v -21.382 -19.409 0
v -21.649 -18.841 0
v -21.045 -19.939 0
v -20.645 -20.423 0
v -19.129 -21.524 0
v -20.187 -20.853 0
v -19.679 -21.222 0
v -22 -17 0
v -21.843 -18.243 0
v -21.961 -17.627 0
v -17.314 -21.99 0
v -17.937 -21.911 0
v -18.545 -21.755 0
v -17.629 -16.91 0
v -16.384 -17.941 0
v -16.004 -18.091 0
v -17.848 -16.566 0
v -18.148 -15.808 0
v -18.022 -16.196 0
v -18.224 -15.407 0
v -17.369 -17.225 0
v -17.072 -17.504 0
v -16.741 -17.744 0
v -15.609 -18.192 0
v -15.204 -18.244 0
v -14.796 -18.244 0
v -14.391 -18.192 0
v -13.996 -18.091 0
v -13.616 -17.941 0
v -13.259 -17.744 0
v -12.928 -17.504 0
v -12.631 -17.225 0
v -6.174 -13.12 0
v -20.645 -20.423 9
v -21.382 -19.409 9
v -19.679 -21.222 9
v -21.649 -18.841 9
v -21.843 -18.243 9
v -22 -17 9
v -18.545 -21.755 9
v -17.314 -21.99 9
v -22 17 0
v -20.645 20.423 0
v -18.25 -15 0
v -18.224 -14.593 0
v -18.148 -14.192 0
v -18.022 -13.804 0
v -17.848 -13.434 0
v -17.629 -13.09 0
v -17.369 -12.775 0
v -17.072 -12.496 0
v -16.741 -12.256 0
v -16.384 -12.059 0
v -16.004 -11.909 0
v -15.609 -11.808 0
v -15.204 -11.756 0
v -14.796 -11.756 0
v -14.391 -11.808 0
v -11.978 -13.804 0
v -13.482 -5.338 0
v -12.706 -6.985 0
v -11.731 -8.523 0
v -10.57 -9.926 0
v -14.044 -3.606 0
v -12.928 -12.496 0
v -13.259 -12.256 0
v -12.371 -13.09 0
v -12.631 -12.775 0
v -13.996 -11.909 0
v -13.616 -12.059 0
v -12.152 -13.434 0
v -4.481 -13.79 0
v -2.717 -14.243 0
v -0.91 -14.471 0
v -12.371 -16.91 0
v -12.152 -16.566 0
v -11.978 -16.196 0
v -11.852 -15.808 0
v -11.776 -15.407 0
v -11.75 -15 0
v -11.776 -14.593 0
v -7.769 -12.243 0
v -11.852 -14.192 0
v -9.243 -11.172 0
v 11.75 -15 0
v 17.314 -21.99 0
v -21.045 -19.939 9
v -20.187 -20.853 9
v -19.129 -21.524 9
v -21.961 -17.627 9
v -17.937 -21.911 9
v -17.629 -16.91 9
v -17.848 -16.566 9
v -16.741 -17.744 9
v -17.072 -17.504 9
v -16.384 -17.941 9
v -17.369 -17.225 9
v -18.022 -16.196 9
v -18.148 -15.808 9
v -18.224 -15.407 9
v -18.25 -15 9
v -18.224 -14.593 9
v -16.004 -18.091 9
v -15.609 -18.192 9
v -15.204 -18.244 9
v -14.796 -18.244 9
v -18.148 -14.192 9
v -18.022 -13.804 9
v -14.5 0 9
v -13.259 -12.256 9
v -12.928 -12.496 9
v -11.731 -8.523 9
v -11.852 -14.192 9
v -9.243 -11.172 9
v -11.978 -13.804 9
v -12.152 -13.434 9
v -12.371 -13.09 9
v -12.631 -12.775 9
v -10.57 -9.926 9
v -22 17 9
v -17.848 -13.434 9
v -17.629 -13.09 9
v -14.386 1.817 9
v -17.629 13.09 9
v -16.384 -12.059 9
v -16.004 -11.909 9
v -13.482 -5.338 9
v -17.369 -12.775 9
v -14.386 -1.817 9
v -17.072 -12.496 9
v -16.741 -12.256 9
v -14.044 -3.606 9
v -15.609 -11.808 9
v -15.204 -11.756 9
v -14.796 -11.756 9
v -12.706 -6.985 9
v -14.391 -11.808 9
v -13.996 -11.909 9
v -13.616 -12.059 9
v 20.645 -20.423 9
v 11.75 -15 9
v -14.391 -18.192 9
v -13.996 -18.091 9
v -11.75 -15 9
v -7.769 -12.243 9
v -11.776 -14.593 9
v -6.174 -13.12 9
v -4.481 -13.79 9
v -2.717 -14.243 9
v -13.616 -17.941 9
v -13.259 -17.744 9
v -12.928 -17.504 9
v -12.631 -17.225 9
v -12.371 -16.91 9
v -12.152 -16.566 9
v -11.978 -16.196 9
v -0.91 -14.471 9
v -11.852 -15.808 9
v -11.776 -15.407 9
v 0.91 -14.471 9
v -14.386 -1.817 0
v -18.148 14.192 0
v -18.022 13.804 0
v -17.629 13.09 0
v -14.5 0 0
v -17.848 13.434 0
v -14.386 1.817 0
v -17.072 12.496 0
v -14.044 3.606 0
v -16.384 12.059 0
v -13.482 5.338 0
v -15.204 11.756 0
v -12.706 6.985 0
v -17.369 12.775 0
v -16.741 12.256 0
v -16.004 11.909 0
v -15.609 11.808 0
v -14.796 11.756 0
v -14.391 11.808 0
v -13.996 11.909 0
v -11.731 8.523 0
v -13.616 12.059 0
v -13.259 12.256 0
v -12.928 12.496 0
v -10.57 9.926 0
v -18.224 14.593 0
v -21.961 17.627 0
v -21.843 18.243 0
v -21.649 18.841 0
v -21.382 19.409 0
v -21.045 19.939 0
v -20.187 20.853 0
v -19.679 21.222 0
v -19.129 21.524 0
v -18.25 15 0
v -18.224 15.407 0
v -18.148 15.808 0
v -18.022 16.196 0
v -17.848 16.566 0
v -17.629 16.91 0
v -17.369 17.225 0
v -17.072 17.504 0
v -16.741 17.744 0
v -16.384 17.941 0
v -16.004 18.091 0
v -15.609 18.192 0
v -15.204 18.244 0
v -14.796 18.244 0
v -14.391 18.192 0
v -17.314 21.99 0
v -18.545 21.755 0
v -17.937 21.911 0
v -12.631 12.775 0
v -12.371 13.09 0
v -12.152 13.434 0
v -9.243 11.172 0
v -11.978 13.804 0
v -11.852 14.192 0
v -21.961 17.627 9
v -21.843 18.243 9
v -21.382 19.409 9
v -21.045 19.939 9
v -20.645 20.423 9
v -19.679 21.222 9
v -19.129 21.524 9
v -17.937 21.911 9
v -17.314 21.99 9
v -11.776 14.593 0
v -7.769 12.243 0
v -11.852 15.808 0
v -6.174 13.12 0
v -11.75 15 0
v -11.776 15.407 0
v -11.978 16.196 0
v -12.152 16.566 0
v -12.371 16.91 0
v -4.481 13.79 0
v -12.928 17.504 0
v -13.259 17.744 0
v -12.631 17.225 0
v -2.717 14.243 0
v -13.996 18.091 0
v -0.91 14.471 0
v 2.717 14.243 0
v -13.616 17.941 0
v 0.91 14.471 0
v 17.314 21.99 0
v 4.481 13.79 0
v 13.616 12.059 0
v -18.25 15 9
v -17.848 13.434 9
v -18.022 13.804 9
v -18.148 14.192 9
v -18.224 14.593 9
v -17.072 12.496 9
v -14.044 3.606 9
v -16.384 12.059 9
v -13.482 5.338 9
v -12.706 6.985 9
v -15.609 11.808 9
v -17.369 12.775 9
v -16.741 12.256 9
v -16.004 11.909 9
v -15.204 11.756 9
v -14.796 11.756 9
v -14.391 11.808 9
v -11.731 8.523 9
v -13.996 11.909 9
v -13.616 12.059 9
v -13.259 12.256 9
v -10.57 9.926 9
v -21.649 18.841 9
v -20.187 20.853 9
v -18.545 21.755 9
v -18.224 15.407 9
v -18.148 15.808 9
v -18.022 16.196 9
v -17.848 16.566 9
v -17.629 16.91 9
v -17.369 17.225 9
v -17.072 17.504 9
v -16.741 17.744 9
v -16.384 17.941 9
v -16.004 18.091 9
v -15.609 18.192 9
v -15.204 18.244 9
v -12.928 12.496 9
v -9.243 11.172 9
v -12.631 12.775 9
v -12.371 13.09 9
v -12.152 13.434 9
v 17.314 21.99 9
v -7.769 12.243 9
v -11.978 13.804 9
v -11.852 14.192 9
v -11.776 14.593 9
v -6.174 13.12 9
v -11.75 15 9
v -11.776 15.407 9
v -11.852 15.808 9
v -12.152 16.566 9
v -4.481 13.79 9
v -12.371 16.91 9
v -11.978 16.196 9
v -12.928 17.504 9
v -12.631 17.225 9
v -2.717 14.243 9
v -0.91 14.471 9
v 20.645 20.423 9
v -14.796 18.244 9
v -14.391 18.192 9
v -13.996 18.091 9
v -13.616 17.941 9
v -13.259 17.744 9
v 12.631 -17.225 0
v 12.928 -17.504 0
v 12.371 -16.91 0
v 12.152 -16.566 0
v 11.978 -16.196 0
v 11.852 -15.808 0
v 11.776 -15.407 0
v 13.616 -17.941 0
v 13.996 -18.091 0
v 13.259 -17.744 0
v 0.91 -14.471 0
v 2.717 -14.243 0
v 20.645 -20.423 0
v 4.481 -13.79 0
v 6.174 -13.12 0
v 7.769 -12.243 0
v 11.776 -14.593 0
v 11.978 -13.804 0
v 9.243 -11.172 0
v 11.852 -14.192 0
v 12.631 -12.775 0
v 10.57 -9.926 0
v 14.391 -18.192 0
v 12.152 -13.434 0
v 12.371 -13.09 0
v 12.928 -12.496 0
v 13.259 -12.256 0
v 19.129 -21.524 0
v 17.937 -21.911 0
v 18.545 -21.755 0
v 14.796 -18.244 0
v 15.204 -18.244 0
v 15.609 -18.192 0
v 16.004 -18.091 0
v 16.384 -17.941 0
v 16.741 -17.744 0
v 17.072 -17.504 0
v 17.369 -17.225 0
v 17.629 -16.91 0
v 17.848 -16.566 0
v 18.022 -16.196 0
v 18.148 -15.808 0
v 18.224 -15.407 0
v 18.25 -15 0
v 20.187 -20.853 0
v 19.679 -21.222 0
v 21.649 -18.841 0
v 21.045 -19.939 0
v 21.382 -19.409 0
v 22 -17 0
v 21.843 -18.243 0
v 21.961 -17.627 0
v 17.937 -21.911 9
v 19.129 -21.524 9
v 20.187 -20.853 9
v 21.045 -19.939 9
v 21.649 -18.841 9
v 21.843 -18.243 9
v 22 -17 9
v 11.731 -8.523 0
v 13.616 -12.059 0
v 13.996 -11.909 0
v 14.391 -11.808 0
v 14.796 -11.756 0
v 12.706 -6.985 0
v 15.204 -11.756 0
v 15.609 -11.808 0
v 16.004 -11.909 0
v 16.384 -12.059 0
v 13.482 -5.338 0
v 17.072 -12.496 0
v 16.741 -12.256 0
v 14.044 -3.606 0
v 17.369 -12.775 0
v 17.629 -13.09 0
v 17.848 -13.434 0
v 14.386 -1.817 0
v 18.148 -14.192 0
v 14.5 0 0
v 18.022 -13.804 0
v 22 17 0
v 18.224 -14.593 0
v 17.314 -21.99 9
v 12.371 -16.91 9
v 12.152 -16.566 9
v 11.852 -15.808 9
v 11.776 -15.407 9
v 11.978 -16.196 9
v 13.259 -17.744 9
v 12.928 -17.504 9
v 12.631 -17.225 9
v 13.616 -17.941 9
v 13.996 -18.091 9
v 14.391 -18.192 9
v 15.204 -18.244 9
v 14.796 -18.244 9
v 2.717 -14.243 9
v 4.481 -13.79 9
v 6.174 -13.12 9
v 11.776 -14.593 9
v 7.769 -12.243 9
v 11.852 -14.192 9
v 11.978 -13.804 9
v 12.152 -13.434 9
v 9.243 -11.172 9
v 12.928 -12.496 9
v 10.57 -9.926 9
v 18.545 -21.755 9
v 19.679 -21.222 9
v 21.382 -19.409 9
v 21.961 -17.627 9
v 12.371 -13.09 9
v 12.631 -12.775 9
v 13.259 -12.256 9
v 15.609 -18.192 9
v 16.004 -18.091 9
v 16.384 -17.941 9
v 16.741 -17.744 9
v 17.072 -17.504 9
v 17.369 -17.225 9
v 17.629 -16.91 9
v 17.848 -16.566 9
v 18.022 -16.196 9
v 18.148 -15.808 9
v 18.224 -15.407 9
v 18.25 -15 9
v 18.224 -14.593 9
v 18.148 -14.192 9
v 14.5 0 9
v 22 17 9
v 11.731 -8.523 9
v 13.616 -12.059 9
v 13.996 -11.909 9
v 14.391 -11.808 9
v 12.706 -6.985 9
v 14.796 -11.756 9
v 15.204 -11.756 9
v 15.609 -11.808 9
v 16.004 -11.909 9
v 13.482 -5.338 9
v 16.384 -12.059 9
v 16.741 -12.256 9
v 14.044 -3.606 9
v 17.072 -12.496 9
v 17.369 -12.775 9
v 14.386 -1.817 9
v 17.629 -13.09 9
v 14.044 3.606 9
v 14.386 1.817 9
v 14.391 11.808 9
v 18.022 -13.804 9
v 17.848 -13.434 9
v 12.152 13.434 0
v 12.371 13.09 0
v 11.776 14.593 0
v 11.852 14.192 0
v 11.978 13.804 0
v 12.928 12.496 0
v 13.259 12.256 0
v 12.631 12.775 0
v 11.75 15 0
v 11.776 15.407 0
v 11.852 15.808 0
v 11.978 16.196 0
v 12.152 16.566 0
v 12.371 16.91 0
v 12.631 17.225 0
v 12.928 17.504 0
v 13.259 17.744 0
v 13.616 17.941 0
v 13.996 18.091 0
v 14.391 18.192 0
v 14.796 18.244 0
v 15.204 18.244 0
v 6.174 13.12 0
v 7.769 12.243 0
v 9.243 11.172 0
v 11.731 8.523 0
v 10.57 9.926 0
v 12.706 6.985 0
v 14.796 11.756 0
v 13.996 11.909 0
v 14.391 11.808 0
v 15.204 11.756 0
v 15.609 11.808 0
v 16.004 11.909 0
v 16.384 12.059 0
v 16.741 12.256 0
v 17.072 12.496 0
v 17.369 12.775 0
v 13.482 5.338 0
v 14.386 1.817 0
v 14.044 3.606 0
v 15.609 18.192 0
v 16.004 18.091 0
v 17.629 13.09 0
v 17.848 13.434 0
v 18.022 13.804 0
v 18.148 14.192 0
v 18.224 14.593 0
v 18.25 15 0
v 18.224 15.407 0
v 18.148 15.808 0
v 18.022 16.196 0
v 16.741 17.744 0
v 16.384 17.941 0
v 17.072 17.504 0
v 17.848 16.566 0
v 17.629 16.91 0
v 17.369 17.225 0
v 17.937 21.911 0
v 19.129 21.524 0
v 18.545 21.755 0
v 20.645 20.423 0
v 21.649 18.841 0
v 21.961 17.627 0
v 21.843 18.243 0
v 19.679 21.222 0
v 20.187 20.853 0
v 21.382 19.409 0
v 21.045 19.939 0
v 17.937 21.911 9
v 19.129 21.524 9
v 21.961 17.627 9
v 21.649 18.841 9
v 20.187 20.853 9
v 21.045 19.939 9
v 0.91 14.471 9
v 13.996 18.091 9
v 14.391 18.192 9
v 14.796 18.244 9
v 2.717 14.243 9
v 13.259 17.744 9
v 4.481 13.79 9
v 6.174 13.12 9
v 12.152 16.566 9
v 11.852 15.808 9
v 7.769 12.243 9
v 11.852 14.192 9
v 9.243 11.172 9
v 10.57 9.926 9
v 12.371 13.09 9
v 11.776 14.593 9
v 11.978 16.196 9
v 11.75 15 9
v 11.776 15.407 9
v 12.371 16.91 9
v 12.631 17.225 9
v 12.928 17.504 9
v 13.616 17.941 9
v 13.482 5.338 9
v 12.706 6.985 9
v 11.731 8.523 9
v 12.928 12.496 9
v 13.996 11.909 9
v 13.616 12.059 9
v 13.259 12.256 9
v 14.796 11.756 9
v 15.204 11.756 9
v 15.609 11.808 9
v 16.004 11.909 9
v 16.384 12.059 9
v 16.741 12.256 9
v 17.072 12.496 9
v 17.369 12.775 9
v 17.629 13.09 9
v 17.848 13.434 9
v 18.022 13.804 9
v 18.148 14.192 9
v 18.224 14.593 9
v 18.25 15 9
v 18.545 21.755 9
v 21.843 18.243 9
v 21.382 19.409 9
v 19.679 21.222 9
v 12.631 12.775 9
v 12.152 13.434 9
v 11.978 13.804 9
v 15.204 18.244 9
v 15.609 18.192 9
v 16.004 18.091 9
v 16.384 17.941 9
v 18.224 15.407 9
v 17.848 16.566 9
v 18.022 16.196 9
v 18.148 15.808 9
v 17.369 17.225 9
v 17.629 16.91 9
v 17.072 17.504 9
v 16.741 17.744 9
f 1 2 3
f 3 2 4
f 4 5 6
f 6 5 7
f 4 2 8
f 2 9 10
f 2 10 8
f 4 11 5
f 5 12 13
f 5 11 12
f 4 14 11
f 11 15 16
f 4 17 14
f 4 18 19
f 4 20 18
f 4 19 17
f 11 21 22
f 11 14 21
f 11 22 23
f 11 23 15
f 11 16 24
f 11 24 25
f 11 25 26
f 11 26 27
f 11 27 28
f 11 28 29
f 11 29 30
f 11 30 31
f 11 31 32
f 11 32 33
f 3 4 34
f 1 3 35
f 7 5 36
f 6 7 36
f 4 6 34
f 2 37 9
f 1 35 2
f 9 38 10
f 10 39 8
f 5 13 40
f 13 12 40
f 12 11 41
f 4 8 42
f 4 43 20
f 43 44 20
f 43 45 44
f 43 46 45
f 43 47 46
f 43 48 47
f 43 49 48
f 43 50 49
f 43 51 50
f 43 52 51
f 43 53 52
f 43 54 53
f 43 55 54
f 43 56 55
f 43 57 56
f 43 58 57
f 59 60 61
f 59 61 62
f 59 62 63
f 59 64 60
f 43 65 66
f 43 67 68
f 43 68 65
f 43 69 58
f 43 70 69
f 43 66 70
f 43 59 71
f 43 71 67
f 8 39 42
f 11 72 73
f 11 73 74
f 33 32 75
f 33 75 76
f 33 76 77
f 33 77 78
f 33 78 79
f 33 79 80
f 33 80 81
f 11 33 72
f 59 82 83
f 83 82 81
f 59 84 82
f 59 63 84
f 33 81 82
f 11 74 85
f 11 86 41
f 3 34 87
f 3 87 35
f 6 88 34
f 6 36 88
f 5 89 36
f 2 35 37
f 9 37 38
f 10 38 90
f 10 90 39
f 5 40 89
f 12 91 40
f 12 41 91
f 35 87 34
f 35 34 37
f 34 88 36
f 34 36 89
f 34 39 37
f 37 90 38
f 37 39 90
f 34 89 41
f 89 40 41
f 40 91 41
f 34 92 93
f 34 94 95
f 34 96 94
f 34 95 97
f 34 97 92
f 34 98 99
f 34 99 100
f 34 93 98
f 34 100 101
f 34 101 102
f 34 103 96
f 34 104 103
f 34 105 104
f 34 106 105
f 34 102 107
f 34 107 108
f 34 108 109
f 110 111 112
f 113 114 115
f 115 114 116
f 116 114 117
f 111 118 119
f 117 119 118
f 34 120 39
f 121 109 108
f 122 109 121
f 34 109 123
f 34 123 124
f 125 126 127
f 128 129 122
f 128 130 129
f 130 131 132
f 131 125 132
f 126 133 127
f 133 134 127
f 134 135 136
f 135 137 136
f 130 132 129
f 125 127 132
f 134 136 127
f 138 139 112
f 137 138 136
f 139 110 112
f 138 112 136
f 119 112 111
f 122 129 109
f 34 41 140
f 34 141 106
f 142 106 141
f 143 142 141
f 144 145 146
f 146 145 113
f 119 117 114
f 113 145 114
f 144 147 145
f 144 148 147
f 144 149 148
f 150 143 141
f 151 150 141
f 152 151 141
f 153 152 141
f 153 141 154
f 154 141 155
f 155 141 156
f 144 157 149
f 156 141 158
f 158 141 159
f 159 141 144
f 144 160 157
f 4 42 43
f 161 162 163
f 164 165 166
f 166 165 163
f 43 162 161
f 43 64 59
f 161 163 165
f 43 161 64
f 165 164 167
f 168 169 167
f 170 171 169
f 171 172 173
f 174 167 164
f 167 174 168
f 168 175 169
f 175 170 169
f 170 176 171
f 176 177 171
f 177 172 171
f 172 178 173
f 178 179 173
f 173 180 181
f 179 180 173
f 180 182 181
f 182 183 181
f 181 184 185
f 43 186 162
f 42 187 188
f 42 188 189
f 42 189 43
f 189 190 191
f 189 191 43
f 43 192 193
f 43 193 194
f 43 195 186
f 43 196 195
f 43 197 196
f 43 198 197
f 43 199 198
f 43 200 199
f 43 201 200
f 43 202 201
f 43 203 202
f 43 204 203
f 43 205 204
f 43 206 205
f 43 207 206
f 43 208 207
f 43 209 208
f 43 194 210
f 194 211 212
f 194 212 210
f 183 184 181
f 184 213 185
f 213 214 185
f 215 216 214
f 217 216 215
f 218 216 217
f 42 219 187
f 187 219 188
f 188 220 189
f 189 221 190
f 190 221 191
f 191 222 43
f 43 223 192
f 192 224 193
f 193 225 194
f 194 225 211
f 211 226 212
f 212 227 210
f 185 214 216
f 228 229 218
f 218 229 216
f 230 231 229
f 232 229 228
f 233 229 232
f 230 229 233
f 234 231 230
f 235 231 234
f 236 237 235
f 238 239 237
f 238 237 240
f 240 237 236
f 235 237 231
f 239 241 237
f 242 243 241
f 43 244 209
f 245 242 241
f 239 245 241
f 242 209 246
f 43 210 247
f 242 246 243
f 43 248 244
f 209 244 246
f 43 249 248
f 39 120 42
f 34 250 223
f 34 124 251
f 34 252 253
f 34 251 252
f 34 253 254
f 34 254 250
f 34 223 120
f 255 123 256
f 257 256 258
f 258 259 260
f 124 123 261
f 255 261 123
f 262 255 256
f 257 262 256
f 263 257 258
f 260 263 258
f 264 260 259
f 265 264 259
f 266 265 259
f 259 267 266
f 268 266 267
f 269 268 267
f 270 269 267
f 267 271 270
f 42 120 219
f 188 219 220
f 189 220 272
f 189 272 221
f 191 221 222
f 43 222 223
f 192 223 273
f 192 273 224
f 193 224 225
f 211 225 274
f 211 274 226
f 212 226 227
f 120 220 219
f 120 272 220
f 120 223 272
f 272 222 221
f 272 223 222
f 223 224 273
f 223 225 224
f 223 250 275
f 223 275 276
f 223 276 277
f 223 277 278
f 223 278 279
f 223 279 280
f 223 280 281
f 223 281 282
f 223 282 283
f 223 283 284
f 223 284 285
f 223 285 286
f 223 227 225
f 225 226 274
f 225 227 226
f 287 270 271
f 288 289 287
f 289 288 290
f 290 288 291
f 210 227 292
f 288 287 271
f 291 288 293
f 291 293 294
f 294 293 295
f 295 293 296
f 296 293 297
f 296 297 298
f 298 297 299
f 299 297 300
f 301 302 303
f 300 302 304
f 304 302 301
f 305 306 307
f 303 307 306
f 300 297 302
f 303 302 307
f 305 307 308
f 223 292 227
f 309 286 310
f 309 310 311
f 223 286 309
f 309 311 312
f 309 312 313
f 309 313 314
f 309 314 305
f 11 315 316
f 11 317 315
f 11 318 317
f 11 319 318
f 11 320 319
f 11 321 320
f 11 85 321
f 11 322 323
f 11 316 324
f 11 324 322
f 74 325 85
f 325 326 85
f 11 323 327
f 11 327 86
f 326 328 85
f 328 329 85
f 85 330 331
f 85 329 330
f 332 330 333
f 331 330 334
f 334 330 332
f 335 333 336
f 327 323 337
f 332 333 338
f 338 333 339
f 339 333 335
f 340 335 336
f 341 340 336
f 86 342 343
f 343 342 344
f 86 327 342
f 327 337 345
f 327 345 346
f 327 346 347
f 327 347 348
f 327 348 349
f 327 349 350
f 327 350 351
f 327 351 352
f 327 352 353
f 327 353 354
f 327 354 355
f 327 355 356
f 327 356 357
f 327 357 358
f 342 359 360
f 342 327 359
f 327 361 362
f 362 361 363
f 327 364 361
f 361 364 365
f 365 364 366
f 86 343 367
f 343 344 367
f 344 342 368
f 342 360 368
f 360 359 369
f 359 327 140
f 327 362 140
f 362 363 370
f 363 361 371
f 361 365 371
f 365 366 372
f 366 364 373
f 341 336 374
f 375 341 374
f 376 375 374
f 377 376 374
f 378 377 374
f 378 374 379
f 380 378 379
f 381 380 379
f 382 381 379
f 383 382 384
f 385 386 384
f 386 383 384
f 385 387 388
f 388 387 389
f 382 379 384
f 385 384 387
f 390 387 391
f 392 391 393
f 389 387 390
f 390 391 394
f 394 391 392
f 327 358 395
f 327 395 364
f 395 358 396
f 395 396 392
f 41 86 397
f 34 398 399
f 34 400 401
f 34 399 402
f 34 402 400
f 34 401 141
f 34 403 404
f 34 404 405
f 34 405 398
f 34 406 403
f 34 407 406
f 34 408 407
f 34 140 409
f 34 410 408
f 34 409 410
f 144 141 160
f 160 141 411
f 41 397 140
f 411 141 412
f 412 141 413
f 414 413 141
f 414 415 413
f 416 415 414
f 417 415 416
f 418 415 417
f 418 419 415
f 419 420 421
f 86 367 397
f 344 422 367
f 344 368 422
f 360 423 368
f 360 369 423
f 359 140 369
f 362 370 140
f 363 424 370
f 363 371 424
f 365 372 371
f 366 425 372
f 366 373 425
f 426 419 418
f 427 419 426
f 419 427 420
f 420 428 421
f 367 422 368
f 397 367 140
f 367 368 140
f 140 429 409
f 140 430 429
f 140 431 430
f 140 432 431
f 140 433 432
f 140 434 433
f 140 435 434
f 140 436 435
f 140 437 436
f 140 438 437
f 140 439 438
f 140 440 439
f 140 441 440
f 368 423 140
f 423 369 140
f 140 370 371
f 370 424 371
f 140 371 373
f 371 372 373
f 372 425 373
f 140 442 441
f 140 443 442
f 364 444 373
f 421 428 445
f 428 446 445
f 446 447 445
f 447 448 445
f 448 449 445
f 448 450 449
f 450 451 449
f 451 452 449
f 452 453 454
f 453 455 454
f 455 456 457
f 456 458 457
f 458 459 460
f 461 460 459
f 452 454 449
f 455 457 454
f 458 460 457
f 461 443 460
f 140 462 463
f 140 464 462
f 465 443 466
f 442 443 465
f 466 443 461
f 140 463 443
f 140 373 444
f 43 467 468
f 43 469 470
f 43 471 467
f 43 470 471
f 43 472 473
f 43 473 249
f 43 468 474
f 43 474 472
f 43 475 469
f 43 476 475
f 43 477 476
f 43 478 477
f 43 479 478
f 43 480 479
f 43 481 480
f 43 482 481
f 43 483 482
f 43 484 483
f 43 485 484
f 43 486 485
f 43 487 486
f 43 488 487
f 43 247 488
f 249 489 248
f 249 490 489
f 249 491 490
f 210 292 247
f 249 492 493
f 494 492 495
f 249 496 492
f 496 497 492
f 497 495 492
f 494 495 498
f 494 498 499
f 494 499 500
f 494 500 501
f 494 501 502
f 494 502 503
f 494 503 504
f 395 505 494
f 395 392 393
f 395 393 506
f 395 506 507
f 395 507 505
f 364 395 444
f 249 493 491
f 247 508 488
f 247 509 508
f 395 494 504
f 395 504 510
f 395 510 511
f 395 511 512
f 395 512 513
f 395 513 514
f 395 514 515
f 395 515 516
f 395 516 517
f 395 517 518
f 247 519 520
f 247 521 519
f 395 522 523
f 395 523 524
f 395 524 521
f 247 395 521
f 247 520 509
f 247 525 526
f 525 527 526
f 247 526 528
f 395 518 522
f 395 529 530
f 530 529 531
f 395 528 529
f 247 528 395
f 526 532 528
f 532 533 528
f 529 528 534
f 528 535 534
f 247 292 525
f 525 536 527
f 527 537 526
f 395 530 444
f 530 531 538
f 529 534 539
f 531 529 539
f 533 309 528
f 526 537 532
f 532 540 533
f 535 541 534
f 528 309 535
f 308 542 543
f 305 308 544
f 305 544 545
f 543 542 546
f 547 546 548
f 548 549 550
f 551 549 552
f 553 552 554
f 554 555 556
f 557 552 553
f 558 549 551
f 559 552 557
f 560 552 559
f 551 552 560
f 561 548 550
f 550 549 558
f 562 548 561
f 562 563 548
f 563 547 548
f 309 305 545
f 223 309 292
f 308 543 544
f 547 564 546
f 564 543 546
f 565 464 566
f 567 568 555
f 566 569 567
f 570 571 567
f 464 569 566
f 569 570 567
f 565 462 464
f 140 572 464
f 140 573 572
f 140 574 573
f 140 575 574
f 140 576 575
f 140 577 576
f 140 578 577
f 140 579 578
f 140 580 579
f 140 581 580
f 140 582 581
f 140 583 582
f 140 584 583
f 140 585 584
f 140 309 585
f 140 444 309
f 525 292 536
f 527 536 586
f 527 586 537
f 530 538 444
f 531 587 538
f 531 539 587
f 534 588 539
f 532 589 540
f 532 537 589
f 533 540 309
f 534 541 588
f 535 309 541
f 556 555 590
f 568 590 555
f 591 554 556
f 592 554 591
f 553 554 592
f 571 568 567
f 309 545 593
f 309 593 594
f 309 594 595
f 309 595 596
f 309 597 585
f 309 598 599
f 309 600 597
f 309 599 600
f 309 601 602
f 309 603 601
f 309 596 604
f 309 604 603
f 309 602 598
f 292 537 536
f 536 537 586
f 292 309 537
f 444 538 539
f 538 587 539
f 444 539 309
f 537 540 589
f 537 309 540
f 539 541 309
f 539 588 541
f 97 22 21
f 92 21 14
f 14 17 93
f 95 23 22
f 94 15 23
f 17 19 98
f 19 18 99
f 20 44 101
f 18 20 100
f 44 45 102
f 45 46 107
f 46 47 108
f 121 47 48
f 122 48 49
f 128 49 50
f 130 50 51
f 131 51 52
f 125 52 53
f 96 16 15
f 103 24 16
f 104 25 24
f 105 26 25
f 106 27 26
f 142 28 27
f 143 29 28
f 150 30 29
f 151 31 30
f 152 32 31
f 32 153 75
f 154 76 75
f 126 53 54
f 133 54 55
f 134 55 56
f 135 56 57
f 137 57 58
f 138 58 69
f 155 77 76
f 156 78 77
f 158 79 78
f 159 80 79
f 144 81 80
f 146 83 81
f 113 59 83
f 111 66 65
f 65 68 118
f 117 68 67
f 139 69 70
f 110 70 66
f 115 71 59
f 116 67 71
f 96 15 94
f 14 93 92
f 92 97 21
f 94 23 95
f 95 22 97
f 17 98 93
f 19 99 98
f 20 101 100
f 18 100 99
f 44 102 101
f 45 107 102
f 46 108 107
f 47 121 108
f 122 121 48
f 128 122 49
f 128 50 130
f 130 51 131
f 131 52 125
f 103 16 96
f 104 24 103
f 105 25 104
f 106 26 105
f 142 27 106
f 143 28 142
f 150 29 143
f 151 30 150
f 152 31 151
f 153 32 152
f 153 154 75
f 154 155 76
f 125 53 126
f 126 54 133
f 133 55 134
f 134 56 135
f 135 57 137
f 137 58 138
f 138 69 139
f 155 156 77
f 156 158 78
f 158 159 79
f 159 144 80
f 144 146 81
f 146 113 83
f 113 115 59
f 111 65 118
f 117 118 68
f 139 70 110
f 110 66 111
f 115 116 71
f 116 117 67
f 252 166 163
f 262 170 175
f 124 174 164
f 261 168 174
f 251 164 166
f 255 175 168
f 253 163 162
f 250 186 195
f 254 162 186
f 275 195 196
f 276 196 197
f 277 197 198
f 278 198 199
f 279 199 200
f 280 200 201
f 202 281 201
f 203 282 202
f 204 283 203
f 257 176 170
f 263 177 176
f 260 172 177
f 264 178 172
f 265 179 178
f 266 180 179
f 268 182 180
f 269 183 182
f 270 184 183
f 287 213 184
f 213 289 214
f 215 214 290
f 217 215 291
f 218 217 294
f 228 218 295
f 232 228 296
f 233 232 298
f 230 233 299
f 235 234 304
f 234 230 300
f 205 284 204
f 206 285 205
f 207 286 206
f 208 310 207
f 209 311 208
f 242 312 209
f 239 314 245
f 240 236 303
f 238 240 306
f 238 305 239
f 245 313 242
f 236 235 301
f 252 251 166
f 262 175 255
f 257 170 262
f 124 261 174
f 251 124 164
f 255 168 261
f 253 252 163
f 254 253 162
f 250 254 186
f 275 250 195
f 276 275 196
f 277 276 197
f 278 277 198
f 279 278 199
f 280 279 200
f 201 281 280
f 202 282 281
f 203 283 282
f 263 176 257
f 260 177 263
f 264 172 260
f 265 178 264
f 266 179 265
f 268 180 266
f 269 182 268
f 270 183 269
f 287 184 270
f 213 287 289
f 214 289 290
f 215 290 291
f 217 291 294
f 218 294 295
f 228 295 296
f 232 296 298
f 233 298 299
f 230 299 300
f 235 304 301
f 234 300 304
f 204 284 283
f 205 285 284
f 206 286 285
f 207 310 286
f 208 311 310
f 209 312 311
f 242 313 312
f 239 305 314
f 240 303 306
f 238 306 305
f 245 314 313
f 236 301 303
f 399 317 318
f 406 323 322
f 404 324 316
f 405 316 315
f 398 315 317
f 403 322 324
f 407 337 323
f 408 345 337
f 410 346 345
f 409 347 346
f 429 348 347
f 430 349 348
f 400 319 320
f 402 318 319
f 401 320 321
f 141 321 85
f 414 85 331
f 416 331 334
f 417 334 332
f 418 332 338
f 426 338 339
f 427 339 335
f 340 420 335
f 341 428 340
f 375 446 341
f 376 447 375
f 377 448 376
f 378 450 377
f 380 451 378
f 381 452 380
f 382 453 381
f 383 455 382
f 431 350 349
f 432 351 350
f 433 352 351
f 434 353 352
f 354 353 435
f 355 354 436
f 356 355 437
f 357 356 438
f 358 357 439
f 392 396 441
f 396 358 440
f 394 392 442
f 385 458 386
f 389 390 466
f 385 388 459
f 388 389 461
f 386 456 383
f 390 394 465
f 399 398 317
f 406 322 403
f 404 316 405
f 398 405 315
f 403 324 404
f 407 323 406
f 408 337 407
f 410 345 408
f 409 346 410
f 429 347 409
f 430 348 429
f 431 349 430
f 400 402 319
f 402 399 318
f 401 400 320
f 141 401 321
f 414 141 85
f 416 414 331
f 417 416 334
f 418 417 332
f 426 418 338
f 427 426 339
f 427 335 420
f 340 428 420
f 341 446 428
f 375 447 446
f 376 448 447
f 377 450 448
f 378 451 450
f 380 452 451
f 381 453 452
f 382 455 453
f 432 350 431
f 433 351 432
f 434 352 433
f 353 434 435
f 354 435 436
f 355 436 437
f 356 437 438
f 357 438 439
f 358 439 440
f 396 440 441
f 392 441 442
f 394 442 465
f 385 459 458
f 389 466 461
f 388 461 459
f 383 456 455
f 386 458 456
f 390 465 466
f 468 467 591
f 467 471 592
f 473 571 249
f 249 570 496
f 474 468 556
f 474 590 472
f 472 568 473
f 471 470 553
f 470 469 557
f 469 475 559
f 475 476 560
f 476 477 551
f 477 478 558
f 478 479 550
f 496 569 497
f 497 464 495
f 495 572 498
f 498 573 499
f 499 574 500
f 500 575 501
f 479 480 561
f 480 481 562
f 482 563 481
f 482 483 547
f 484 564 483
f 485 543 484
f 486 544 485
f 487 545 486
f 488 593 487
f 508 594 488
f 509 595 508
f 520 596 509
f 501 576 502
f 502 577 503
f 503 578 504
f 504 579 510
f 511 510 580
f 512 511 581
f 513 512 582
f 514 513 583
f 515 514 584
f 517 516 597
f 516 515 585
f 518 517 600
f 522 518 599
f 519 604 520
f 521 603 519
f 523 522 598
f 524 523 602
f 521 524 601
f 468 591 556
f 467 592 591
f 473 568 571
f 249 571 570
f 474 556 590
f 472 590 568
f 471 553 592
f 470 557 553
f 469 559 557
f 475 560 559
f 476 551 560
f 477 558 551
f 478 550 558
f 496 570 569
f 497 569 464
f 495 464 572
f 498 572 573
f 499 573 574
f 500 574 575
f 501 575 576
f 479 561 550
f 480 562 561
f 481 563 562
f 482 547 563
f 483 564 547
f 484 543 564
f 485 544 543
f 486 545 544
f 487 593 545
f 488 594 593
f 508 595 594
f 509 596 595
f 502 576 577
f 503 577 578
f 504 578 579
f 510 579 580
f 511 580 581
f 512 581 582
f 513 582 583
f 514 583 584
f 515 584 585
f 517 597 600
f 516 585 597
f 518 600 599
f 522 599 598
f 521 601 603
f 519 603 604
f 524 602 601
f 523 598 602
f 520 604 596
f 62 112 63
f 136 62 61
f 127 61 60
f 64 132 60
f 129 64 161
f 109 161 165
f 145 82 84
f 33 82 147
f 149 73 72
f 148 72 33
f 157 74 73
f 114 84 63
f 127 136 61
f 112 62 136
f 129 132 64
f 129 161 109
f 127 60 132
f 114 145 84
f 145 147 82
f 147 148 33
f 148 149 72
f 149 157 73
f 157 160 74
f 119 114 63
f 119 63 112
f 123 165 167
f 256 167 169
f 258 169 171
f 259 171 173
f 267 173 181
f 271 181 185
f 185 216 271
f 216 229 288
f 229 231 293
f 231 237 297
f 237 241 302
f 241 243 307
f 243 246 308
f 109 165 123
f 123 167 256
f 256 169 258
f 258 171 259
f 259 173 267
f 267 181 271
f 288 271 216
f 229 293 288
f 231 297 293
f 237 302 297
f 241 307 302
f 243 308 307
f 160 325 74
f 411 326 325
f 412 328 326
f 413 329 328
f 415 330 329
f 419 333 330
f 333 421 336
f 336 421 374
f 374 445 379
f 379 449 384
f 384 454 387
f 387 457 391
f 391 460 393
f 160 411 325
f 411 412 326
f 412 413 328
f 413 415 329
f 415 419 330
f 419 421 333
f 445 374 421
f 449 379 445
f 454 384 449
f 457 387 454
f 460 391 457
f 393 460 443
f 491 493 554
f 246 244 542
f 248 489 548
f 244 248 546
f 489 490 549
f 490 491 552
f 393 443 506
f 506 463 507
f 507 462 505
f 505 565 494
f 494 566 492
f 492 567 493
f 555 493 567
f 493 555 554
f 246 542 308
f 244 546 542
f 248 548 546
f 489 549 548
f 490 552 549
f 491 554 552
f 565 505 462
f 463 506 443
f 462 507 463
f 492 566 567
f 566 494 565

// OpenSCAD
$fn = 50;

difference() {
	union() {
		hull() {
			translate(v = [-17.0, 17.0, 0]) {
				cylinder(h = 9, r = 5);
			}
			translate(v = [17.0, 17.0, 0]) {
				cylinder(h = 9, r = 5);
			}
			translate(v = [-17.0, -17.0, 0]) {
				cylinder(h = 9, r = 5);
			}
			translate(v = [17.0, -17.0, 0]) {
				cylinder(h = 9, r = 5);
			}
		}
	}
	union() {
		translate(v = [-15.0, -15.0, -100.0]) {
			cylinder(h = 200, r = 3.25);
		}
		translate(v = [-15.0, 15.0, -100.0]) {
			cylinder(h = 200, r = 3.25);
		}
		translate(v = [15.0, -15.0, -100.0]) {
			cylinder(h = 200, r = 3.25);
		}
		translate(v = [15.0, 15.0, -100.0]) {
			cylinder(h = 200, r = 3.25);
		}
		translate(v = [-15.0, -15.0, -100.0]) {
			cylinder(h = 200, r = 1.8);
		}
		translate(v = [-15.0, 15.0, -100.0]) {
			cylinder(h = 200, r = 1.8);
		}
		translate(v = [15.0, -15.0, -100.0]) {
			cylinder(h = 200, r = 1.8);
		}
		translate(v = [15.0, 15.0, -100.0]) {
			cylinder(h = 200, r = 1.8);
		}
		cylinder(h = 9, r = 14.5);
	}
}
